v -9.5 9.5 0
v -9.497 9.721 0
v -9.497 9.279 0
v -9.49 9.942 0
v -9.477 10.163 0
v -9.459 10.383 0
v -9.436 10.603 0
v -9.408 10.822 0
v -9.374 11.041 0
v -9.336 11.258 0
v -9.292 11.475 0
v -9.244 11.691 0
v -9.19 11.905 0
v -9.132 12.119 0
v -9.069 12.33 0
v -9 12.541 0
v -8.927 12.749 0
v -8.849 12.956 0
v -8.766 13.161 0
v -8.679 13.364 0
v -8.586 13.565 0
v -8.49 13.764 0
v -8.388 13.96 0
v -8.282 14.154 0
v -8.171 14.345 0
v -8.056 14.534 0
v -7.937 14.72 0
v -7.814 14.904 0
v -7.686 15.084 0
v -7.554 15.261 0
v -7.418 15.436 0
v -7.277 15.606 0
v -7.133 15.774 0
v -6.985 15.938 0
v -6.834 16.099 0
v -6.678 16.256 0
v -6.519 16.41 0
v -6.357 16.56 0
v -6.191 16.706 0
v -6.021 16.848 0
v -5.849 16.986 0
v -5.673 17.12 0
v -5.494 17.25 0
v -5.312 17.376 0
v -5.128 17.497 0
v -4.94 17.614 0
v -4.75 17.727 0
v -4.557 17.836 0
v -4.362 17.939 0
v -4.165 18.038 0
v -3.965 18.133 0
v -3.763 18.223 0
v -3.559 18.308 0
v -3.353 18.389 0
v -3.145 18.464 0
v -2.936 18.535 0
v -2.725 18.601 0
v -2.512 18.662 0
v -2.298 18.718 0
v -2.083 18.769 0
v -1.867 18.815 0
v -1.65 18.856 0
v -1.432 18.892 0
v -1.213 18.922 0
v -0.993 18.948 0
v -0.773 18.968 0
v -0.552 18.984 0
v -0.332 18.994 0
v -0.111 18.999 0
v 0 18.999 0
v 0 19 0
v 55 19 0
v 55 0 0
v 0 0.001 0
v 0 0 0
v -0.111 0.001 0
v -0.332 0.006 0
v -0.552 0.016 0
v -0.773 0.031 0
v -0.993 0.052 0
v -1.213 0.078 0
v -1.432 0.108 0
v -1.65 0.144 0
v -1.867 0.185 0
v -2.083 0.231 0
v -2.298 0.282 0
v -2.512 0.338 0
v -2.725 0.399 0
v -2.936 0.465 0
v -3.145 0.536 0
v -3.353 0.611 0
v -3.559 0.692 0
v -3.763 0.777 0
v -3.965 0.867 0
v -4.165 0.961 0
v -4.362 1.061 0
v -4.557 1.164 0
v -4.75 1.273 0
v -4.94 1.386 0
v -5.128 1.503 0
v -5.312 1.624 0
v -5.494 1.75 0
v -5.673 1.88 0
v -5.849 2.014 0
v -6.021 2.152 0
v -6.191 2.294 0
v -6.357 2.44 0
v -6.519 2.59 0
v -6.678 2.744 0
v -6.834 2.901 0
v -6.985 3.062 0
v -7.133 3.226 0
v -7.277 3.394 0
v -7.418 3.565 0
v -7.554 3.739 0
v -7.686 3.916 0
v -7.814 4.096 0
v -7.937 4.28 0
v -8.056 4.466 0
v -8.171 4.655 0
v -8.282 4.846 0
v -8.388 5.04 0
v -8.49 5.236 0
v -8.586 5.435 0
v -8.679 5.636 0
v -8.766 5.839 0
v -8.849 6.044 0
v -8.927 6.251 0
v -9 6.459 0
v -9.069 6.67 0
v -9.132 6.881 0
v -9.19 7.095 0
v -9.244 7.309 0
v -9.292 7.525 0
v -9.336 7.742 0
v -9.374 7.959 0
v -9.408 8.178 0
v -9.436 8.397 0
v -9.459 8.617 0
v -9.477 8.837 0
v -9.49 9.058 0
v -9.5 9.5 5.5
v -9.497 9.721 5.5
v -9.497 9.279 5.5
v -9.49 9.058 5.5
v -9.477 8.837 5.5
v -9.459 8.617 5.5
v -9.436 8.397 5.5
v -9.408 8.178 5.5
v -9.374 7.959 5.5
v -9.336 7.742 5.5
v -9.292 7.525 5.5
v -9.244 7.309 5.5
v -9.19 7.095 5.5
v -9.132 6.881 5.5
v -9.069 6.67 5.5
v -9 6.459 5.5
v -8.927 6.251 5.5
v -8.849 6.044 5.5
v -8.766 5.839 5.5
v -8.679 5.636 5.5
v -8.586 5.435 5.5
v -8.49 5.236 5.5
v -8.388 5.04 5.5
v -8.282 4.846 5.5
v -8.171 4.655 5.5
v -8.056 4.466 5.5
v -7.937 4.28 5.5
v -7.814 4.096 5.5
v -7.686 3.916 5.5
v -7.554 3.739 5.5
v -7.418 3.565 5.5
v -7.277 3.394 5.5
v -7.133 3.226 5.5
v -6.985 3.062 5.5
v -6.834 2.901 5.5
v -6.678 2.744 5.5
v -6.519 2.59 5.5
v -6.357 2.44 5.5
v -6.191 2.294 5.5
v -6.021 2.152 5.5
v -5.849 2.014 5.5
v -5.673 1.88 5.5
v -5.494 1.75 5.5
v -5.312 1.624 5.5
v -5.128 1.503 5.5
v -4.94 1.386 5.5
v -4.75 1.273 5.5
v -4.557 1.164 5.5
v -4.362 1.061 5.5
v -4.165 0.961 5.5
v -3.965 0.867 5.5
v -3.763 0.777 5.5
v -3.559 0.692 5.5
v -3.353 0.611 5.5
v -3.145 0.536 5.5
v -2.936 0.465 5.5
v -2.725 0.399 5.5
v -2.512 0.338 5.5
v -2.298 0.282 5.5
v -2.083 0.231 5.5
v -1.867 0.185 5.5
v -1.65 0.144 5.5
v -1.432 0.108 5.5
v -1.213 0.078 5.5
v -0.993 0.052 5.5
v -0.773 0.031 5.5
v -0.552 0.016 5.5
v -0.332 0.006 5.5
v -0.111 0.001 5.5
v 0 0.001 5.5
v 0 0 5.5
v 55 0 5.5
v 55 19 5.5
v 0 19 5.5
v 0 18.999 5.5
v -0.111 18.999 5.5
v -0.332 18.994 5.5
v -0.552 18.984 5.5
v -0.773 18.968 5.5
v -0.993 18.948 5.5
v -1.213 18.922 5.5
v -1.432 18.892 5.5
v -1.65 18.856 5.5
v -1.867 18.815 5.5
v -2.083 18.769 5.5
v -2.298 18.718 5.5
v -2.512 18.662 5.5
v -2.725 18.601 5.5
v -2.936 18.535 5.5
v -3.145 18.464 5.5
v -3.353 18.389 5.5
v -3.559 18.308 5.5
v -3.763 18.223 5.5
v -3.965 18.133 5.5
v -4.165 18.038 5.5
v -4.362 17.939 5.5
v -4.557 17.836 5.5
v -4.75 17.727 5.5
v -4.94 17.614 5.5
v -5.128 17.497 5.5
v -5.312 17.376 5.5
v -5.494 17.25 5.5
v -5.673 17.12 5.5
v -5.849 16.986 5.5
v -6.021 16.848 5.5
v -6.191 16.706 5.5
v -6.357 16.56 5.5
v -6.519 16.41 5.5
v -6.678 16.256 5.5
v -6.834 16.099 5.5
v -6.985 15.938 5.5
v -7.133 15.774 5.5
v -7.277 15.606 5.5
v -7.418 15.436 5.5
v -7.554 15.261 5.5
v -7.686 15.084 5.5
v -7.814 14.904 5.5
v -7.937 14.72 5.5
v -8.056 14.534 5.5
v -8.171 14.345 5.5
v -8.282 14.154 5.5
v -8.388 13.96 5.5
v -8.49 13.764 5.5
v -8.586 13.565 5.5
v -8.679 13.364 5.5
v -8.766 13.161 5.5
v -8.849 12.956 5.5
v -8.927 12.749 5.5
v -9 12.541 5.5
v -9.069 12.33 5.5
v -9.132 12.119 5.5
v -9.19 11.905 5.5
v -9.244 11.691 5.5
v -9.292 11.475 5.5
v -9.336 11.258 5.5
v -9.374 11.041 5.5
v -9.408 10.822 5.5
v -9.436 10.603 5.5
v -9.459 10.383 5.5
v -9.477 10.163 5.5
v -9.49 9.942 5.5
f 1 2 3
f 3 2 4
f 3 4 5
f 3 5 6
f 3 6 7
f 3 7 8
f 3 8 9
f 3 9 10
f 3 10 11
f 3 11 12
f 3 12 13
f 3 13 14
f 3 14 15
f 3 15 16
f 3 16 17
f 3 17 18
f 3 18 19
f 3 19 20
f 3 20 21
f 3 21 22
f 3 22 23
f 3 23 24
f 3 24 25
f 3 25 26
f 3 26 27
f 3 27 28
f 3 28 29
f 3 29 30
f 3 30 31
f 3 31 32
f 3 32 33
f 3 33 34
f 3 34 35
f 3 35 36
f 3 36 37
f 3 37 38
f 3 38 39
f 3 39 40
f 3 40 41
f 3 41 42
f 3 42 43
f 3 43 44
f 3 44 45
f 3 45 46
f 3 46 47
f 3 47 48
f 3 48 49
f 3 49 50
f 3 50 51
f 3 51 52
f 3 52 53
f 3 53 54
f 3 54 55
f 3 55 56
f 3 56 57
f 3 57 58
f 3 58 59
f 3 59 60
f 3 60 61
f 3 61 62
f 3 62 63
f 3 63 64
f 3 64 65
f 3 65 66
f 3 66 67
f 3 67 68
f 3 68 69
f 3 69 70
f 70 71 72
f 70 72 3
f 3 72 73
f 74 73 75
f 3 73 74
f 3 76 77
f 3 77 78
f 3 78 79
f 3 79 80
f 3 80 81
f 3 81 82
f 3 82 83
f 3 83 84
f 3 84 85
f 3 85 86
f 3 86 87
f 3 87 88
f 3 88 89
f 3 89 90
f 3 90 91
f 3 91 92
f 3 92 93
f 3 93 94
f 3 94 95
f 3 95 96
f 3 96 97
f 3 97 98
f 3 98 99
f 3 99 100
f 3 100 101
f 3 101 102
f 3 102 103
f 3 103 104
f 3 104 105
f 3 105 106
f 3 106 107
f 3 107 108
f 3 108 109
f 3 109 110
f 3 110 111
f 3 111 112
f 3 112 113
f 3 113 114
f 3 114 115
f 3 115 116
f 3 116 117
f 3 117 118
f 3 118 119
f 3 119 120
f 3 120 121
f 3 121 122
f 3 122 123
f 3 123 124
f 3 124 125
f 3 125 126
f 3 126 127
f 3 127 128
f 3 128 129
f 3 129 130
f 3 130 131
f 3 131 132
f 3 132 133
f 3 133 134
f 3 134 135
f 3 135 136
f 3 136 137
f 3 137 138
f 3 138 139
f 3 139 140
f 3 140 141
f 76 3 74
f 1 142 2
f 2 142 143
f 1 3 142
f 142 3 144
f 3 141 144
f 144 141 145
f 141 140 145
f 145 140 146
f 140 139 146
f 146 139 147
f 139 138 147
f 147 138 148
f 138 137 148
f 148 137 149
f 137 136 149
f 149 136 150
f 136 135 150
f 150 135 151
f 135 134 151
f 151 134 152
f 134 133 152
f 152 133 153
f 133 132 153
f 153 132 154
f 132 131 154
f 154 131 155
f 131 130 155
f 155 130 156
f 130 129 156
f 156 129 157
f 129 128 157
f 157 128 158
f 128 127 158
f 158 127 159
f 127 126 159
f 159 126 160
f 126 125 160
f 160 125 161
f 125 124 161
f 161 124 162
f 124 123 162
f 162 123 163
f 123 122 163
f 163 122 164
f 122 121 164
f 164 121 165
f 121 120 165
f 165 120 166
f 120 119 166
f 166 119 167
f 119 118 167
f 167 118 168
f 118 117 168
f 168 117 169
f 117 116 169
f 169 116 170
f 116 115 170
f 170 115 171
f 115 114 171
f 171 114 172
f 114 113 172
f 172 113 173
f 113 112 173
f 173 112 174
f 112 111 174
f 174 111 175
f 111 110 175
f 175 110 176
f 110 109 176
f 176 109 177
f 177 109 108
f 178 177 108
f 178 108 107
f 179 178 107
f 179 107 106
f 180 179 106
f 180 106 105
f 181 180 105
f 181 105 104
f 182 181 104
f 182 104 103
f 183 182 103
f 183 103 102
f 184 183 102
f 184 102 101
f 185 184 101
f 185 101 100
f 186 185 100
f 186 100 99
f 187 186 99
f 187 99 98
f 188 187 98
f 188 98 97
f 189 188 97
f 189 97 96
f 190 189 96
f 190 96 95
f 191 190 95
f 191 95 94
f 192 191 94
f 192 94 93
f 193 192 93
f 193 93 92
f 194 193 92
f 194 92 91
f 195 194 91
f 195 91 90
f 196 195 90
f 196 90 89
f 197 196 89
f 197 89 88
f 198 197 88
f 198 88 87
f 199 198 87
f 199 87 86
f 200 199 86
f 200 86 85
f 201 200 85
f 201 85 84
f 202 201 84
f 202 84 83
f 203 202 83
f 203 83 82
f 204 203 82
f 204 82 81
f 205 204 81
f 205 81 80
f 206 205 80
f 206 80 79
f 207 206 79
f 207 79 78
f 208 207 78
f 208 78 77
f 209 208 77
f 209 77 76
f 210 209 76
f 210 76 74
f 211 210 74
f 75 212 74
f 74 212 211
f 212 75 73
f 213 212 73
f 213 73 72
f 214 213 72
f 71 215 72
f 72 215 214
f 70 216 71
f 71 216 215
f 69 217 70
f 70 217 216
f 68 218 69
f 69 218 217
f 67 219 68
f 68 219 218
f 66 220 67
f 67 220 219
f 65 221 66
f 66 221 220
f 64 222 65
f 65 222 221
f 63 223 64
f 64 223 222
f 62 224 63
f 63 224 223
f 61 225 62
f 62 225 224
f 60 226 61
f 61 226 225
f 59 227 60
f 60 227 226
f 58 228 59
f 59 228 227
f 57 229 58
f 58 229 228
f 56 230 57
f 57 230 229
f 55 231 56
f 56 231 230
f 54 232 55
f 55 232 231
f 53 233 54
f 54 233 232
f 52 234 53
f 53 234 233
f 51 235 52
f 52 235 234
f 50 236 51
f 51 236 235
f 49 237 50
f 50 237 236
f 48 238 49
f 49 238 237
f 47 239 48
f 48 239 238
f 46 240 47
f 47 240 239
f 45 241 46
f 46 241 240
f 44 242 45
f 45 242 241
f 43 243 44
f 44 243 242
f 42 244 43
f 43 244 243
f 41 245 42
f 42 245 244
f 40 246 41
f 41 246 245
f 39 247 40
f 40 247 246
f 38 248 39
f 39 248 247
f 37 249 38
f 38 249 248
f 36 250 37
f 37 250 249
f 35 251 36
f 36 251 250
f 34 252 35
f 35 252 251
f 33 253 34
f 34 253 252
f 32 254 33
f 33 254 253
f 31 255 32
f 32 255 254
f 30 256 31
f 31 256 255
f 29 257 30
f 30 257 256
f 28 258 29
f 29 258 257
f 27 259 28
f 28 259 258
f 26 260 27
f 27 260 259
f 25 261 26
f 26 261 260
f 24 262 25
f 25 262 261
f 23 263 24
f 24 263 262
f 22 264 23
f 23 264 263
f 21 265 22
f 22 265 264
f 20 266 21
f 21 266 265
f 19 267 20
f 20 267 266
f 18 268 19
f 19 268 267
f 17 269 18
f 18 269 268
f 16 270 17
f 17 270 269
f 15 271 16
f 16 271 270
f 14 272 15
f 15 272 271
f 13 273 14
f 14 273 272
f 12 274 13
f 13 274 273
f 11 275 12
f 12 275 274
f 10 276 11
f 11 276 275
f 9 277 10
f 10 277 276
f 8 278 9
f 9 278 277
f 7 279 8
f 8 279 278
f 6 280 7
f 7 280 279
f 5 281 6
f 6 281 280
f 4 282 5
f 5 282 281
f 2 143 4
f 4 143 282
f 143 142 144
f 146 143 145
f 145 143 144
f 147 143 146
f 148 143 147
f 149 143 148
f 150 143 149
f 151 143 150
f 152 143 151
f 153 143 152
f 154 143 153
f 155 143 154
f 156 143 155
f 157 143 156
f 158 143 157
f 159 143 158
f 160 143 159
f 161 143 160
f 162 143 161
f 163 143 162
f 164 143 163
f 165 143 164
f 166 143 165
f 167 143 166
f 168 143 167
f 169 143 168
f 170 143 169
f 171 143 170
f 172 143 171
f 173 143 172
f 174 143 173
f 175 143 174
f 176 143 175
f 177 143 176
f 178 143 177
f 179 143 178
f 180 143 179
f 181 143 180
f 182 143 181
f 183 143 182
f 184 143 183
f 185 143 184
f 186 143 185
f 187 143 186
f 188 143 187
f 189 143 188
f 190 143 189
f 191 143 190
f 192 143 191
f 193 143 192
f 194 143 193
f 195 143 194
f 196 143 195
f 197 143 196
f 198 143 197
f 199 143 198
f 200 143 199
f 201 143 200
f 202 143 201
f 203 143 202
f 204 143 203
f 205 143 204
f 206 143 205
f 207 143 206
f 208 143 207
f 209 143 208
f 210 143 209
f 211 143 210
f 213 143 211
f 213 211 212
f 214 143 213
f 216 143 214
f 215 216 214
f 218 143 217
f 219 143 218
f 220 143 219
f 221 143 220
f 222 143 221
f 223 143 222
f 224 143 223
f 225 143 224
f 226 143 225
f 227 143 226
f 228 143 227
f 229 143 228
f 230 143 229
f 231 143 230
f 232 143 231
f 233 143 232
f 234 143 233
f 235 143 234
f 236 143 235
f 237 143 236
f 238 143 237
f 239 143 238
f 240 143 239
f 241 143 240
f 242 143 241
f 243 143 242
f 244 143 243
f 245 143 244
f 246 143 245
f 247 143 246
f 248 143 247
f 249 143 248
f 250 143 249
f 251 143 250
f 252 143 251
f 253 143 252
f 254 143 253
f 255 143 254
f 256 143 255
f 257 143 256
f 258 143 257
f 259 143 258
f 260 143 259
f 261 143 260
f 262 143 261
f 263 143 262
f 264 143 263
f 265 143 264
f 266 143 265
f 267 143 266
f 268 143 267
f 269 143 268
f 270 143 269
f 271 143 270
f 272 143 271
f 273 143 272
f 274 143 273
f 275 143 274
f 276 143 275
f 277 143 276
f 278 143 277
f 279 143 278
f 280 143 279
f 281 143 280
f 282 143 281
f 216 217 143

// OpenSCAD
x=55;
y=19;
z=5.5; // по этой переменной можно менять толщину всей модели
//Гуанин
$fn=270;
translate ([0,0,0]){
color("Red") cube ([x,y,z]);
//difference () {
color("Red") translate ([0,y/2,0]) cylinder (z,y/2,y/2);
//#translate ([-17.5,18,6])rotate ([0,90,0])cylinder (3.5,5,5);
//  }
 }
